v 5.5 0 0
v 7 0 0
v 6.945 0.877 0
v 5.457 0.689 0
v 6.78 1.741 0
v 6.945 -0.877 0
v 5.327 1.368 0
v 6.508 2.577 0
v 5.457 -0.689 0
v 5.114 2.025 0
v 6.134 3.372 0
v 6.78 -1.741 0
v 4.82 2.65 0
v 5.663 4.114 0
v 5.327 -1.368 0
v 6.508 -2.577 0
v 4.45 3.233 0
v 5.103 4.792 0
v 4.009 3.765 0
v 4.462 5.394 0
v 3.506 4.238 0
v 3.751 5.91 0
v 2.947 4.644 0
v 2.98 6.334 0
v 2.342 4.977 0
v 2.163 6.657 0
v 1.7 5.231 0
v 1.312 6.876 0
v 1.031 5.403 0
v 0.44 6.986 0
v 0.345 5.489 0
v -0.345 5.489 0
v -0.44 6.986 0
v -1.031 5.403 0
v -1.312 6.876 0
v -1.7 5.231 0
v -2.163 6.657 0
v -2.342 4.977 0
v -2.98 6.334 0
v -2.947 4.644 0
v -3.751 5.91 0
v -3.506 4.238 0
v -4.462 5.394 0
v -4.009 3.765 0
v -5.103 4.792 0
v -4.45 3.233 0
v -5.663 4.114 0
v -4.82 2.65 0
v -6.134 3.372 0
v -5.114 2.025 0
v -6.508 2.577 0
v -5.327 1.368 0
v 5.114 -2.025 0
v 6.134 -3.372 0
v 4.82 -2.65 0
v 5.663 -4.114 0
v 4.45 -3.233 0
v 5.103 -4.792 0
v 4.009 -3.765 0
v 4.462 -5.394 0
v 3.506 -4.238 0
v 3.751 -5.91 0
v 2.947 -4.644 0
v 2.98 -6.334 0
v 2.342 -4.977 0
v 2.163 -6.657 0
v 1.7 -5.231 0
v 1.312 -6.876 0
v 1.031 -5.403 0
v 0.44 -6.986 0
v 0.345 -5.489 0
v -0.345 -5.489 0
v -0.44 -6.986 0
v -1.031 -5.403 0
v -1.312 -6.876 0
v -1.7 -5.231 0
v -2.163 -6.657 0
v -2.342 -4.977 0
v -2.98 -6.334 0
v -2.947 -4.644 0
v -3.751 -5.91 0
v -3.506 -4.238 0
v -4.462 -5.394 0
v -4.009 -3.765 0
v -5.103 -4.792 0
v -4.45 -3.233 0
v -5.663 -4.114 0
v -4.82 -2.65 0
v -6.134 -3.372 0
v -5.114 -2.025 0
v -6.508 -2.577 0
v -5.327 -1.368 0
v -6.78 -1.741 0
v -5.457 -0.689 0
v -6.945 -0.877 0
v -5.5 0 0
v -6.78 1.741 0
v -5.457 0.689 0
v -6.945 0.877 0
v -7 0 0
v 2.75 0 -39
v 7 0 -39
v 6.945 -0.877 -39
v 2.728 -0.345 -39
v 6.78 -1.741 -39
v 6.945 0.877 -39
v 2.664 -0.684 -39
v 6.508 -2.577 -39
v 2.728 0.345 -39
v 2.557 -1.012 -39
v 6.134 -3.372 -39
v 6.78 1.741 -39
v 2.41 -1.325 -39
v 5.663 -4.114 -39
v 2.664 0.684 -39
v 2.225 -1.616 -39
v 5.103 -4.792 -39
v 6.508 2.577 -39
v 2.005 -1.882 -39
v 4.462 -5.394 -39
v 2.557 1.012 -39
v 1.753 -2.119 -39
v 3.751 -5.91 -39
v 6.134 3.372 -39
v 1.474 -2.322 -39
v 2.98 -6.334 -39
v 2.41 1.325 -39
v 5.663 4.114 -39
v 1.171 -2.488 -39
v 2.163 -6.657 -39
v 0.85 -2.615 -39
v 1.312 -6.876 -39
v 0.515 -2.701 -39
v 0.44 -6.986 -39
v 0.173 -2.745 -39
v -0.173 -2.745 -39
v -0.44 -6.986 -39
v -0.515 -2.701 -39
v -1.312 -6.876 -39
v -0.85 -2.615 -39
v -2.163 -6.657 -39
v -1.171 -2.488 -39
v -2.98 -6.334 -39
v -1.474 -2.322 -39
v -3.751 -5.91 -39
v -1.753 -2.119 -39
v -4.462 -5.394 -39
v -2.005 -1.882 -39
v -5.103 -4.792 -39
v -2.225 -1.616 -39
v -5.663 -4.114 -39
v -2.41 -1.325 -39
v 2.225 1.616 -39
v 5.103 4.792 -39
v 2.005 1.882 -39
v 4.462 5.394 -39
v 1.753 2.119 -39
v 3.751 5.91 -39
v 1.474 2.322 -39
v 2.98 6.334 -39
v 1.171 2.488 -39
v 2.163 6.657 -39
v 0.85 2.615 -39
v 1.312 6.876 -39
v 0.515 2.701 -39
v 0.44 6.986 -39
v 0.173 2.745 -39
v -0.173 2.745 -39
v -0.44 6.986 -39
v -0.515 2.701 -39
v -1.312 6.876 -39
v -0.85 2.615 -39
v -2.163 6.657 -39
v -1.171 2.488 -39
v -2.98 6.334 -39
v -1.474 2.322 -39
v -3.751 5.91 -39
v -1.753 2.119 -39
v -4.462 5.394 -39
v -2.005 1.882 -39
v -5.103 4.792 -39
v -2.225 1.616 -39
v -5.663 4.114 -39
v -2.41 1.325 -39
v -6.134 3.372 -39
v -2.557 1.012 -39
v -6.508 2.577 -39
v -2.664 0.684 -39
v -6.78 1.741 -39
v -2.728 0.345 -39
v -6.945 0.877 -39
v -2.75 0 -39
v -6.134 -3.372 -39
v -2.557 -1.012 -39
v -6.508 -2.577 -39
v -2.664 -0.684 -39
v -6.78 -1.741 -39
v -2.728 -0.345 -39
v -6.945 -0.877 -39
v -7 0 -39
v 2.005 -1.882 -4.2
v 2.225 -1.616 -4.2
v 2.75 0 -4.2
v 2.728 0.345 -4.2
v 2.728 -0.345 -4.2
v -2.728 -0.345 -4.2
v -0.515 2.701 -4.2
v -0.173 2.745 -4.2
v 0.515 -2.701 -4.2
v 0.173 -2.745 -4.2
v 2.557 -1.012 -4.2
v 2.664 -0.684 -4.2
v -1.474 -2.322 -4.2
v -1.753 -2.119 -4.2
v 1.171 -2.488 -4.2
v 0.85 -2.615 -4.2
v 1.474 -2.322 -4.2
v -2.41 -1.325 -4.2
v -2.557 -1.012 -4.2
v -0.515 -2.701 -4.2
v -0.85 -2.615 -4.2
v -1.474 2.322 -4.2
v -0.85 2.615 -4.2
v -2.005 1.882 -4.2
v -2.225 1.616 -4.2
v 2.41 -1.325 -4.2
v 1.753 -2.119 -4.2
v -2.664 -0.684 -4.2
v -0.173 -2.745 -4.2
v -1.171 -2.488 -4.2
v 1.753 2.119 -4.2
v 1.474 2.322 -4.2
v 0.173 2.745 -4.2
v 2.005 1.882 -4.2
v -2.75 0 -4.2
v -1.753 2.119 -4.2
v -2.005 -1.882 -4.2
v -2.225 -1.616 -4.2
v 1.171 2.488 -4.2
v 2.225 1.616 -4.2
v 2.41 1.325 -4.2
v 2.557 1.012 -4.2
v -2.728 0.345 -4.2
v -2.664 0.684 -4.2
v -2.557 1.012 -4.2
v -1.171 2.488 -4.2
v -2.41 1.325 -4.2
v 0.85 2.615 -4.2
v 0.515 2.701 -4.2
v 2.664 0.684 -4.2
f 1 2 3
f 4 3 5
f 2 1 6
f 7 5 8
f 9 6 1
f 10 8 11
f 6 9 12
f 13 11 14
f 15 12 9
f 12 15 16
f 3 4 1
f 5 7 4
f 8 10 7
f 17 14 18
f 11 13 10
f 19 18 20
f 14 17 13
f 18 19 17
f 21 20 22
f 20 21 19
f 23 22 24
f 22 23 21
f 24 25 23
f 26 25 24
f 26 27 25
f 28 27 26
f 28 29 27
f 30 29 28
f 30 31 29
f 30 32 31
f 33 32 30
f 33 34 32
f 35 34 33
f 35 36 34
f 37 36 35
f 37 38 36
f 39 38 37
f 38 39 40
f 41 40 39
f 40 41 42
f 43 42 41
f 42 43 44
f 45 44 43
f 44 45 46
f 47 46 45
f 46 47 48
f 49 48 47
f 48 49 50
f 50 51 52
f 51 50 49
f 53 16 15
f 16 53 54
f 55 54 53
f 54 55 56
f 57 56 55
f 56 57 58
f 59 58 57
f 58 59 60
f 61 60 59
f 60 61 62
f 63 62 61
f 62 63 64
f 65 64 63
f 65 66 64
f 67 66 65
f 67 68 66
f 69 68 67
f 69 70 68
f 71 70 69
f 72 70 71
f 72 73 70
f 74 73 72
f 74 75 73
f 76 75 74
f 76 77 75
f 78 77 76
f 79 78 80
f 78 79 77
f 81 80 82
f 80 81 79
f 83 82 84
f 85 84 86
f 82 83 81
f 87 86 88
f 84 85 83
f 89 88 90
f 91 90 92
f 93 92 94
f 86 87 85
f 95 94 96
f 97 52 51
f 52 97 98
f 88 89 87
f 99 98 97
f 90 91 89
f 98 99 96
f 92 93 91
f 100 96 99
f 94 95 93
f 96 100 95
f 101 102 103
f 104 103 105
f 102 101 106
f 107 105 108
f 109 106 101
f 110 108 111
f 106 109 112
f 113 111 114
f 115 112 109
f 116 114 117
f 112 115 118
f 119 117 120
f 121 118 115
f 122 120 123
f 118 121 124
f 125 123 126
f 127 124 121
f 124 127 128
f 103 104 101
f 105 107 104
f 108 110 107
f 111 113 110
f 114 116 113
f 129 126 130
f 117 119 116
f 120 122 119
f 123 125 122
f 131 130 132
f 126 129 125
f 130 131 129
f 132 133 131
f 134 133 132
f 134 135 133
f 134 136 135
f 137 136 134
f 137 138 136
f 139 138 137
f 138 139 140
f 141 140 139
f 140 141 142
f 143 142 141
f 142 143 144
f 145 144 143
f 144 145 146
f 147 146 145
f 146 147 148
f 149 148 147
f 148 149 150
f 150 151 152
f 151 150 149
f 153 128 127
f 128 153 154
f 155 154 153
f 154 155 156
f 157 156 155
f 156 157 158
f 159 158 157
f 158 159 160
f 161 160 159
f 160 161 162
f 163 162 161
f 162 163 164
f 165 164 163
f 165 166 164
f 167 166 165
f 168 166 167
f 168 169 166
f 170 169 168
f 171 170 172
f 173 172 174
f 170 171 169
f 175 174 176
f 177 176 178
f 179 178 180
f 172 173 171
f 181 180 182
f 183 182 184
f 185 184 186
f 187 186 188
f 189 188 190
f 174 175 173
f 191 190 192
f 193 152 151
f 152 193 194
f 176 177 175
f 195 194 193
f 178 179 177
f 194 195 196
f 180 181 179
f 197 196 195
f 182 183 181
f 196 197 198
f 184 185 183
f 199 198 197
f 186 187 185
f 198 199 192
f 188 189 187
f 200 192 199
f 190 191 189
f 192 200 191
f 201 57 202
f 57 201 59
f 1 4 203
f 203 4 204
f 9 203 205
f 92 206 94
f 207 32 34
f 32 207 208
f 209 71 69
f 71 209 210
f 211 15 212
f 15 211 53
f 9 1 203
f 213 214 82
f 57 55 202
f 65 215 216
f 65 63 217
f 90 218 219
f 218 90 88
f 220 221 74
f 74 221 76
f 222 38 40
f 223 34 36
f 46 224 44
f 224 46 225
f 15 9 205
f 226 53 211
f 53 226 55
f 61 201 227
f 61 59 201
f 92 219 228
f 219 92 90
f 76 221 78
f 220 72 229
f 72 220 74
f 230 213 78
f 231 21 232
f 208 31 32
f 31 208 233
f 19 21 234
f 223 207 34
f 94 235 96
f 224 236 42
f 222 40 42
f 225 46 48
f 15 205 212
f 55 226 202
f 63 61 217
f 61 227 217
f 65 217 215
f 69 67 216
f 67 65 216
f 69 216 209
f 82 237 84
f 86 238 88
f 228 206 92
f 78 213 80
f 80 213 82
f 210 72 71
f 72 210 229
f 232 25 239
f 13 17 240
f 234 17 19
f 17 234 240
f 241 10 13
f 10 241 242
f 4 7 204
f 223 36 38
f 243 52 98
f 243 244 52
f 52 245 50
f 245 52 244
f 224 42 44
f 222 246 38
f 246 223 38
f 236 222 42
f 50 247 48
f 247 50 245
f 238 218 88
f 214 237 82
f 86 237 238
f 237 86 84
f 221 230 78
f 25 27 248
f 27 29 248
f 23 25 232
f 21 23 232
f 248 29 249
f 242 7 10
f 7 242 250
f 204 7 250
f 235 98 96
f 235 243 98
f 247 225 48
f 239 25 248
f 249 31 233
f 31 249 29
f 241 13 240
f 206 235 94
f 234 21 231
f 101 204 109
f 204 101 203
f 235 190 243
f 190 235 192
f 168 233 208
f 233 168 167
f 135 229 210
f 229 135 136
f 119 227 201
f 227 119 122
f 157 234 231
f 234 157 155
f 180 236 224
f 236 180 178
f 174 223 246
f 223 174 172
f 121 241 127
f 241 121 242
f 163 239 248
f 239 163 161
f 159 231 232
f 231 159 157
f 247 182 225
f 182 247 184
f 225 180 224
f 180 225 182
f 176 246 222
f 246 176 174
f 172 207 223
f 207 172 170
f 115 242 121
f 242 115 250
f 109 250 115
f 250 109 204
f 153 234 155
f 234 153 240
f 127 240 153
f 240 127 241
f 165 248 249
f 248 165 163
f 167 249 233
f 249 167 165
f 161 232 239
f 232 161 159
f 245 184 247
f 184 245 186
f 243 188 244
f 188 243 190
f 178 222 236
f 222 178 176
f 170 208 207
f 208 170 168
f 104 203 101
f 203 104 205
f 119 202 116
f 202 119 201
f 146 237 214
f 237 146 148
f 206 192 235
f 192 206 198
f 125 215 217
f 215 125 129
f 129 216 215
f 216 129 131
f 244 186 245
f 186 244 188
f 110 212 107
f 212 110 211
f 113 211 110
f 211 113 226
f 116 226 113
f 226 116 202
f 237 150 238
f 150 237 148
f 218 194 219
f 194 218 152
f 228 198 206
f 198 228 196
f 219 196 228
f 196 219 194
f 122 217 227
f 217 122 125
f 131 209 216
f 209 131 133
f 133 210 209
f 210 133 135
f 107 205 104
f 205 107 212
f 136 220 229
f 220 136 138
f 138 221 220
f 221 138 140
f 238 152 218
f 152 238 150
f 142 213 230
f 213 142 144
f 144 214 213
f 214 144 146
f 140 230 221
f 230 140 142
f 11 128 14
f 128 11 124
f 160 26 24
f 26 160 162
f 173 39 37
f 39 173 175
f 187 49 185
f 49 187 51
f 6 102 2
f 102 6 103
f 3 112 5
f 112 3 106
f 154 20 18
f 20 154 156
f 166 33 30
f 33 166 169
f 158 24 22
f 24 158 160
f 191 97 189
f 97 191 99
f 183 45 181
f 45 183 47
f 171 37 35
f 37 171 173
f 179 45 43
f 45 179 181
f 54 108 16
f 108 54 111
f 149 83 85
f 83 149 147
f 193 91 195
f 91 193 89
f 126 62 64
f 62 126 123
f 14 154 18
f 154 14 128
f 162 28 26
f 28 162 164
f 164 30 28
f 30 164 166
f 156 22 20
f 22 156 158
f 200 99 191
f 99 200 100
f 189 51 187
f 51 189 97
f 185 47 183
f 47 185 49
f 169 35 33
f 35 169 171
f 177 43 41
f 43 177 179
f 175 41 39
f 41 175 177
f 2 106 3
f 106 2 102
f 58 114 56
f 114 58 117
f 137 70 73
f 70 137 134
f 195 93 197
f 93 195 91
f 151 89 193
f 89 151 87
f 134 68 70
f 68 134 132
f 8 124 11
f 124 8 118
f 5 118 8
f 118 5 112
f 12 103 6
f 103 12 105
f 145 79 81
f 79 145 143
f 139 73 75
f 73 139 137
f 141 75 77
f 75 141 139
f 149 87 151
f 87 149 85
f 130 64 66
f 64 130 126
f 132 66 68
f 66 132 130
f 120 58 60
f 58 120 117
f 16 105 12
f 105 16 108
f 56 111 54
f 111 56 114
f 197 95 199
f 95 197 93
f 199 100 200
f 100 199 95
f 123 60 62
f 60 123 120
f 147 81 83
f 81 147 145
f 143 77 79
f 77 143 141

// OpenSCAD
$fn = 50;


difference() {
	union() {
		translate(v = [0, 0, -39.0000000000]) {
			cylinder(h = 39, r = 7.0000000000);
		}
		cylinder(h = 0, r = 16.0000000000);
	}
	union() {
		translate(v = [0, 0, 0]) {
			rotate(a = [0, 0, 0]) {
				difference() {
					union() {
						#translate(v = [0, 0, -39.0000000000]) {
							cylinder(h = 39, r = 2.2500000000);
						}
						#translate(v = [0, 0, -4.2000000000]) {
							cylinder(h = 4.2000000000, r1 = 2.7500000000, r2 = 5.5000000000);
						}
						#translate(v = [0, 0, -39.0000000000]) {
							cylinder(h = 39, r = 2.7500000000);
						}
						#translate(v = [0, 0, -39.0000000000]) {
							cylinder(h = 39, r = 2.2500000000);
						}
					}
					union();
				}
			}
		}
	}
}
